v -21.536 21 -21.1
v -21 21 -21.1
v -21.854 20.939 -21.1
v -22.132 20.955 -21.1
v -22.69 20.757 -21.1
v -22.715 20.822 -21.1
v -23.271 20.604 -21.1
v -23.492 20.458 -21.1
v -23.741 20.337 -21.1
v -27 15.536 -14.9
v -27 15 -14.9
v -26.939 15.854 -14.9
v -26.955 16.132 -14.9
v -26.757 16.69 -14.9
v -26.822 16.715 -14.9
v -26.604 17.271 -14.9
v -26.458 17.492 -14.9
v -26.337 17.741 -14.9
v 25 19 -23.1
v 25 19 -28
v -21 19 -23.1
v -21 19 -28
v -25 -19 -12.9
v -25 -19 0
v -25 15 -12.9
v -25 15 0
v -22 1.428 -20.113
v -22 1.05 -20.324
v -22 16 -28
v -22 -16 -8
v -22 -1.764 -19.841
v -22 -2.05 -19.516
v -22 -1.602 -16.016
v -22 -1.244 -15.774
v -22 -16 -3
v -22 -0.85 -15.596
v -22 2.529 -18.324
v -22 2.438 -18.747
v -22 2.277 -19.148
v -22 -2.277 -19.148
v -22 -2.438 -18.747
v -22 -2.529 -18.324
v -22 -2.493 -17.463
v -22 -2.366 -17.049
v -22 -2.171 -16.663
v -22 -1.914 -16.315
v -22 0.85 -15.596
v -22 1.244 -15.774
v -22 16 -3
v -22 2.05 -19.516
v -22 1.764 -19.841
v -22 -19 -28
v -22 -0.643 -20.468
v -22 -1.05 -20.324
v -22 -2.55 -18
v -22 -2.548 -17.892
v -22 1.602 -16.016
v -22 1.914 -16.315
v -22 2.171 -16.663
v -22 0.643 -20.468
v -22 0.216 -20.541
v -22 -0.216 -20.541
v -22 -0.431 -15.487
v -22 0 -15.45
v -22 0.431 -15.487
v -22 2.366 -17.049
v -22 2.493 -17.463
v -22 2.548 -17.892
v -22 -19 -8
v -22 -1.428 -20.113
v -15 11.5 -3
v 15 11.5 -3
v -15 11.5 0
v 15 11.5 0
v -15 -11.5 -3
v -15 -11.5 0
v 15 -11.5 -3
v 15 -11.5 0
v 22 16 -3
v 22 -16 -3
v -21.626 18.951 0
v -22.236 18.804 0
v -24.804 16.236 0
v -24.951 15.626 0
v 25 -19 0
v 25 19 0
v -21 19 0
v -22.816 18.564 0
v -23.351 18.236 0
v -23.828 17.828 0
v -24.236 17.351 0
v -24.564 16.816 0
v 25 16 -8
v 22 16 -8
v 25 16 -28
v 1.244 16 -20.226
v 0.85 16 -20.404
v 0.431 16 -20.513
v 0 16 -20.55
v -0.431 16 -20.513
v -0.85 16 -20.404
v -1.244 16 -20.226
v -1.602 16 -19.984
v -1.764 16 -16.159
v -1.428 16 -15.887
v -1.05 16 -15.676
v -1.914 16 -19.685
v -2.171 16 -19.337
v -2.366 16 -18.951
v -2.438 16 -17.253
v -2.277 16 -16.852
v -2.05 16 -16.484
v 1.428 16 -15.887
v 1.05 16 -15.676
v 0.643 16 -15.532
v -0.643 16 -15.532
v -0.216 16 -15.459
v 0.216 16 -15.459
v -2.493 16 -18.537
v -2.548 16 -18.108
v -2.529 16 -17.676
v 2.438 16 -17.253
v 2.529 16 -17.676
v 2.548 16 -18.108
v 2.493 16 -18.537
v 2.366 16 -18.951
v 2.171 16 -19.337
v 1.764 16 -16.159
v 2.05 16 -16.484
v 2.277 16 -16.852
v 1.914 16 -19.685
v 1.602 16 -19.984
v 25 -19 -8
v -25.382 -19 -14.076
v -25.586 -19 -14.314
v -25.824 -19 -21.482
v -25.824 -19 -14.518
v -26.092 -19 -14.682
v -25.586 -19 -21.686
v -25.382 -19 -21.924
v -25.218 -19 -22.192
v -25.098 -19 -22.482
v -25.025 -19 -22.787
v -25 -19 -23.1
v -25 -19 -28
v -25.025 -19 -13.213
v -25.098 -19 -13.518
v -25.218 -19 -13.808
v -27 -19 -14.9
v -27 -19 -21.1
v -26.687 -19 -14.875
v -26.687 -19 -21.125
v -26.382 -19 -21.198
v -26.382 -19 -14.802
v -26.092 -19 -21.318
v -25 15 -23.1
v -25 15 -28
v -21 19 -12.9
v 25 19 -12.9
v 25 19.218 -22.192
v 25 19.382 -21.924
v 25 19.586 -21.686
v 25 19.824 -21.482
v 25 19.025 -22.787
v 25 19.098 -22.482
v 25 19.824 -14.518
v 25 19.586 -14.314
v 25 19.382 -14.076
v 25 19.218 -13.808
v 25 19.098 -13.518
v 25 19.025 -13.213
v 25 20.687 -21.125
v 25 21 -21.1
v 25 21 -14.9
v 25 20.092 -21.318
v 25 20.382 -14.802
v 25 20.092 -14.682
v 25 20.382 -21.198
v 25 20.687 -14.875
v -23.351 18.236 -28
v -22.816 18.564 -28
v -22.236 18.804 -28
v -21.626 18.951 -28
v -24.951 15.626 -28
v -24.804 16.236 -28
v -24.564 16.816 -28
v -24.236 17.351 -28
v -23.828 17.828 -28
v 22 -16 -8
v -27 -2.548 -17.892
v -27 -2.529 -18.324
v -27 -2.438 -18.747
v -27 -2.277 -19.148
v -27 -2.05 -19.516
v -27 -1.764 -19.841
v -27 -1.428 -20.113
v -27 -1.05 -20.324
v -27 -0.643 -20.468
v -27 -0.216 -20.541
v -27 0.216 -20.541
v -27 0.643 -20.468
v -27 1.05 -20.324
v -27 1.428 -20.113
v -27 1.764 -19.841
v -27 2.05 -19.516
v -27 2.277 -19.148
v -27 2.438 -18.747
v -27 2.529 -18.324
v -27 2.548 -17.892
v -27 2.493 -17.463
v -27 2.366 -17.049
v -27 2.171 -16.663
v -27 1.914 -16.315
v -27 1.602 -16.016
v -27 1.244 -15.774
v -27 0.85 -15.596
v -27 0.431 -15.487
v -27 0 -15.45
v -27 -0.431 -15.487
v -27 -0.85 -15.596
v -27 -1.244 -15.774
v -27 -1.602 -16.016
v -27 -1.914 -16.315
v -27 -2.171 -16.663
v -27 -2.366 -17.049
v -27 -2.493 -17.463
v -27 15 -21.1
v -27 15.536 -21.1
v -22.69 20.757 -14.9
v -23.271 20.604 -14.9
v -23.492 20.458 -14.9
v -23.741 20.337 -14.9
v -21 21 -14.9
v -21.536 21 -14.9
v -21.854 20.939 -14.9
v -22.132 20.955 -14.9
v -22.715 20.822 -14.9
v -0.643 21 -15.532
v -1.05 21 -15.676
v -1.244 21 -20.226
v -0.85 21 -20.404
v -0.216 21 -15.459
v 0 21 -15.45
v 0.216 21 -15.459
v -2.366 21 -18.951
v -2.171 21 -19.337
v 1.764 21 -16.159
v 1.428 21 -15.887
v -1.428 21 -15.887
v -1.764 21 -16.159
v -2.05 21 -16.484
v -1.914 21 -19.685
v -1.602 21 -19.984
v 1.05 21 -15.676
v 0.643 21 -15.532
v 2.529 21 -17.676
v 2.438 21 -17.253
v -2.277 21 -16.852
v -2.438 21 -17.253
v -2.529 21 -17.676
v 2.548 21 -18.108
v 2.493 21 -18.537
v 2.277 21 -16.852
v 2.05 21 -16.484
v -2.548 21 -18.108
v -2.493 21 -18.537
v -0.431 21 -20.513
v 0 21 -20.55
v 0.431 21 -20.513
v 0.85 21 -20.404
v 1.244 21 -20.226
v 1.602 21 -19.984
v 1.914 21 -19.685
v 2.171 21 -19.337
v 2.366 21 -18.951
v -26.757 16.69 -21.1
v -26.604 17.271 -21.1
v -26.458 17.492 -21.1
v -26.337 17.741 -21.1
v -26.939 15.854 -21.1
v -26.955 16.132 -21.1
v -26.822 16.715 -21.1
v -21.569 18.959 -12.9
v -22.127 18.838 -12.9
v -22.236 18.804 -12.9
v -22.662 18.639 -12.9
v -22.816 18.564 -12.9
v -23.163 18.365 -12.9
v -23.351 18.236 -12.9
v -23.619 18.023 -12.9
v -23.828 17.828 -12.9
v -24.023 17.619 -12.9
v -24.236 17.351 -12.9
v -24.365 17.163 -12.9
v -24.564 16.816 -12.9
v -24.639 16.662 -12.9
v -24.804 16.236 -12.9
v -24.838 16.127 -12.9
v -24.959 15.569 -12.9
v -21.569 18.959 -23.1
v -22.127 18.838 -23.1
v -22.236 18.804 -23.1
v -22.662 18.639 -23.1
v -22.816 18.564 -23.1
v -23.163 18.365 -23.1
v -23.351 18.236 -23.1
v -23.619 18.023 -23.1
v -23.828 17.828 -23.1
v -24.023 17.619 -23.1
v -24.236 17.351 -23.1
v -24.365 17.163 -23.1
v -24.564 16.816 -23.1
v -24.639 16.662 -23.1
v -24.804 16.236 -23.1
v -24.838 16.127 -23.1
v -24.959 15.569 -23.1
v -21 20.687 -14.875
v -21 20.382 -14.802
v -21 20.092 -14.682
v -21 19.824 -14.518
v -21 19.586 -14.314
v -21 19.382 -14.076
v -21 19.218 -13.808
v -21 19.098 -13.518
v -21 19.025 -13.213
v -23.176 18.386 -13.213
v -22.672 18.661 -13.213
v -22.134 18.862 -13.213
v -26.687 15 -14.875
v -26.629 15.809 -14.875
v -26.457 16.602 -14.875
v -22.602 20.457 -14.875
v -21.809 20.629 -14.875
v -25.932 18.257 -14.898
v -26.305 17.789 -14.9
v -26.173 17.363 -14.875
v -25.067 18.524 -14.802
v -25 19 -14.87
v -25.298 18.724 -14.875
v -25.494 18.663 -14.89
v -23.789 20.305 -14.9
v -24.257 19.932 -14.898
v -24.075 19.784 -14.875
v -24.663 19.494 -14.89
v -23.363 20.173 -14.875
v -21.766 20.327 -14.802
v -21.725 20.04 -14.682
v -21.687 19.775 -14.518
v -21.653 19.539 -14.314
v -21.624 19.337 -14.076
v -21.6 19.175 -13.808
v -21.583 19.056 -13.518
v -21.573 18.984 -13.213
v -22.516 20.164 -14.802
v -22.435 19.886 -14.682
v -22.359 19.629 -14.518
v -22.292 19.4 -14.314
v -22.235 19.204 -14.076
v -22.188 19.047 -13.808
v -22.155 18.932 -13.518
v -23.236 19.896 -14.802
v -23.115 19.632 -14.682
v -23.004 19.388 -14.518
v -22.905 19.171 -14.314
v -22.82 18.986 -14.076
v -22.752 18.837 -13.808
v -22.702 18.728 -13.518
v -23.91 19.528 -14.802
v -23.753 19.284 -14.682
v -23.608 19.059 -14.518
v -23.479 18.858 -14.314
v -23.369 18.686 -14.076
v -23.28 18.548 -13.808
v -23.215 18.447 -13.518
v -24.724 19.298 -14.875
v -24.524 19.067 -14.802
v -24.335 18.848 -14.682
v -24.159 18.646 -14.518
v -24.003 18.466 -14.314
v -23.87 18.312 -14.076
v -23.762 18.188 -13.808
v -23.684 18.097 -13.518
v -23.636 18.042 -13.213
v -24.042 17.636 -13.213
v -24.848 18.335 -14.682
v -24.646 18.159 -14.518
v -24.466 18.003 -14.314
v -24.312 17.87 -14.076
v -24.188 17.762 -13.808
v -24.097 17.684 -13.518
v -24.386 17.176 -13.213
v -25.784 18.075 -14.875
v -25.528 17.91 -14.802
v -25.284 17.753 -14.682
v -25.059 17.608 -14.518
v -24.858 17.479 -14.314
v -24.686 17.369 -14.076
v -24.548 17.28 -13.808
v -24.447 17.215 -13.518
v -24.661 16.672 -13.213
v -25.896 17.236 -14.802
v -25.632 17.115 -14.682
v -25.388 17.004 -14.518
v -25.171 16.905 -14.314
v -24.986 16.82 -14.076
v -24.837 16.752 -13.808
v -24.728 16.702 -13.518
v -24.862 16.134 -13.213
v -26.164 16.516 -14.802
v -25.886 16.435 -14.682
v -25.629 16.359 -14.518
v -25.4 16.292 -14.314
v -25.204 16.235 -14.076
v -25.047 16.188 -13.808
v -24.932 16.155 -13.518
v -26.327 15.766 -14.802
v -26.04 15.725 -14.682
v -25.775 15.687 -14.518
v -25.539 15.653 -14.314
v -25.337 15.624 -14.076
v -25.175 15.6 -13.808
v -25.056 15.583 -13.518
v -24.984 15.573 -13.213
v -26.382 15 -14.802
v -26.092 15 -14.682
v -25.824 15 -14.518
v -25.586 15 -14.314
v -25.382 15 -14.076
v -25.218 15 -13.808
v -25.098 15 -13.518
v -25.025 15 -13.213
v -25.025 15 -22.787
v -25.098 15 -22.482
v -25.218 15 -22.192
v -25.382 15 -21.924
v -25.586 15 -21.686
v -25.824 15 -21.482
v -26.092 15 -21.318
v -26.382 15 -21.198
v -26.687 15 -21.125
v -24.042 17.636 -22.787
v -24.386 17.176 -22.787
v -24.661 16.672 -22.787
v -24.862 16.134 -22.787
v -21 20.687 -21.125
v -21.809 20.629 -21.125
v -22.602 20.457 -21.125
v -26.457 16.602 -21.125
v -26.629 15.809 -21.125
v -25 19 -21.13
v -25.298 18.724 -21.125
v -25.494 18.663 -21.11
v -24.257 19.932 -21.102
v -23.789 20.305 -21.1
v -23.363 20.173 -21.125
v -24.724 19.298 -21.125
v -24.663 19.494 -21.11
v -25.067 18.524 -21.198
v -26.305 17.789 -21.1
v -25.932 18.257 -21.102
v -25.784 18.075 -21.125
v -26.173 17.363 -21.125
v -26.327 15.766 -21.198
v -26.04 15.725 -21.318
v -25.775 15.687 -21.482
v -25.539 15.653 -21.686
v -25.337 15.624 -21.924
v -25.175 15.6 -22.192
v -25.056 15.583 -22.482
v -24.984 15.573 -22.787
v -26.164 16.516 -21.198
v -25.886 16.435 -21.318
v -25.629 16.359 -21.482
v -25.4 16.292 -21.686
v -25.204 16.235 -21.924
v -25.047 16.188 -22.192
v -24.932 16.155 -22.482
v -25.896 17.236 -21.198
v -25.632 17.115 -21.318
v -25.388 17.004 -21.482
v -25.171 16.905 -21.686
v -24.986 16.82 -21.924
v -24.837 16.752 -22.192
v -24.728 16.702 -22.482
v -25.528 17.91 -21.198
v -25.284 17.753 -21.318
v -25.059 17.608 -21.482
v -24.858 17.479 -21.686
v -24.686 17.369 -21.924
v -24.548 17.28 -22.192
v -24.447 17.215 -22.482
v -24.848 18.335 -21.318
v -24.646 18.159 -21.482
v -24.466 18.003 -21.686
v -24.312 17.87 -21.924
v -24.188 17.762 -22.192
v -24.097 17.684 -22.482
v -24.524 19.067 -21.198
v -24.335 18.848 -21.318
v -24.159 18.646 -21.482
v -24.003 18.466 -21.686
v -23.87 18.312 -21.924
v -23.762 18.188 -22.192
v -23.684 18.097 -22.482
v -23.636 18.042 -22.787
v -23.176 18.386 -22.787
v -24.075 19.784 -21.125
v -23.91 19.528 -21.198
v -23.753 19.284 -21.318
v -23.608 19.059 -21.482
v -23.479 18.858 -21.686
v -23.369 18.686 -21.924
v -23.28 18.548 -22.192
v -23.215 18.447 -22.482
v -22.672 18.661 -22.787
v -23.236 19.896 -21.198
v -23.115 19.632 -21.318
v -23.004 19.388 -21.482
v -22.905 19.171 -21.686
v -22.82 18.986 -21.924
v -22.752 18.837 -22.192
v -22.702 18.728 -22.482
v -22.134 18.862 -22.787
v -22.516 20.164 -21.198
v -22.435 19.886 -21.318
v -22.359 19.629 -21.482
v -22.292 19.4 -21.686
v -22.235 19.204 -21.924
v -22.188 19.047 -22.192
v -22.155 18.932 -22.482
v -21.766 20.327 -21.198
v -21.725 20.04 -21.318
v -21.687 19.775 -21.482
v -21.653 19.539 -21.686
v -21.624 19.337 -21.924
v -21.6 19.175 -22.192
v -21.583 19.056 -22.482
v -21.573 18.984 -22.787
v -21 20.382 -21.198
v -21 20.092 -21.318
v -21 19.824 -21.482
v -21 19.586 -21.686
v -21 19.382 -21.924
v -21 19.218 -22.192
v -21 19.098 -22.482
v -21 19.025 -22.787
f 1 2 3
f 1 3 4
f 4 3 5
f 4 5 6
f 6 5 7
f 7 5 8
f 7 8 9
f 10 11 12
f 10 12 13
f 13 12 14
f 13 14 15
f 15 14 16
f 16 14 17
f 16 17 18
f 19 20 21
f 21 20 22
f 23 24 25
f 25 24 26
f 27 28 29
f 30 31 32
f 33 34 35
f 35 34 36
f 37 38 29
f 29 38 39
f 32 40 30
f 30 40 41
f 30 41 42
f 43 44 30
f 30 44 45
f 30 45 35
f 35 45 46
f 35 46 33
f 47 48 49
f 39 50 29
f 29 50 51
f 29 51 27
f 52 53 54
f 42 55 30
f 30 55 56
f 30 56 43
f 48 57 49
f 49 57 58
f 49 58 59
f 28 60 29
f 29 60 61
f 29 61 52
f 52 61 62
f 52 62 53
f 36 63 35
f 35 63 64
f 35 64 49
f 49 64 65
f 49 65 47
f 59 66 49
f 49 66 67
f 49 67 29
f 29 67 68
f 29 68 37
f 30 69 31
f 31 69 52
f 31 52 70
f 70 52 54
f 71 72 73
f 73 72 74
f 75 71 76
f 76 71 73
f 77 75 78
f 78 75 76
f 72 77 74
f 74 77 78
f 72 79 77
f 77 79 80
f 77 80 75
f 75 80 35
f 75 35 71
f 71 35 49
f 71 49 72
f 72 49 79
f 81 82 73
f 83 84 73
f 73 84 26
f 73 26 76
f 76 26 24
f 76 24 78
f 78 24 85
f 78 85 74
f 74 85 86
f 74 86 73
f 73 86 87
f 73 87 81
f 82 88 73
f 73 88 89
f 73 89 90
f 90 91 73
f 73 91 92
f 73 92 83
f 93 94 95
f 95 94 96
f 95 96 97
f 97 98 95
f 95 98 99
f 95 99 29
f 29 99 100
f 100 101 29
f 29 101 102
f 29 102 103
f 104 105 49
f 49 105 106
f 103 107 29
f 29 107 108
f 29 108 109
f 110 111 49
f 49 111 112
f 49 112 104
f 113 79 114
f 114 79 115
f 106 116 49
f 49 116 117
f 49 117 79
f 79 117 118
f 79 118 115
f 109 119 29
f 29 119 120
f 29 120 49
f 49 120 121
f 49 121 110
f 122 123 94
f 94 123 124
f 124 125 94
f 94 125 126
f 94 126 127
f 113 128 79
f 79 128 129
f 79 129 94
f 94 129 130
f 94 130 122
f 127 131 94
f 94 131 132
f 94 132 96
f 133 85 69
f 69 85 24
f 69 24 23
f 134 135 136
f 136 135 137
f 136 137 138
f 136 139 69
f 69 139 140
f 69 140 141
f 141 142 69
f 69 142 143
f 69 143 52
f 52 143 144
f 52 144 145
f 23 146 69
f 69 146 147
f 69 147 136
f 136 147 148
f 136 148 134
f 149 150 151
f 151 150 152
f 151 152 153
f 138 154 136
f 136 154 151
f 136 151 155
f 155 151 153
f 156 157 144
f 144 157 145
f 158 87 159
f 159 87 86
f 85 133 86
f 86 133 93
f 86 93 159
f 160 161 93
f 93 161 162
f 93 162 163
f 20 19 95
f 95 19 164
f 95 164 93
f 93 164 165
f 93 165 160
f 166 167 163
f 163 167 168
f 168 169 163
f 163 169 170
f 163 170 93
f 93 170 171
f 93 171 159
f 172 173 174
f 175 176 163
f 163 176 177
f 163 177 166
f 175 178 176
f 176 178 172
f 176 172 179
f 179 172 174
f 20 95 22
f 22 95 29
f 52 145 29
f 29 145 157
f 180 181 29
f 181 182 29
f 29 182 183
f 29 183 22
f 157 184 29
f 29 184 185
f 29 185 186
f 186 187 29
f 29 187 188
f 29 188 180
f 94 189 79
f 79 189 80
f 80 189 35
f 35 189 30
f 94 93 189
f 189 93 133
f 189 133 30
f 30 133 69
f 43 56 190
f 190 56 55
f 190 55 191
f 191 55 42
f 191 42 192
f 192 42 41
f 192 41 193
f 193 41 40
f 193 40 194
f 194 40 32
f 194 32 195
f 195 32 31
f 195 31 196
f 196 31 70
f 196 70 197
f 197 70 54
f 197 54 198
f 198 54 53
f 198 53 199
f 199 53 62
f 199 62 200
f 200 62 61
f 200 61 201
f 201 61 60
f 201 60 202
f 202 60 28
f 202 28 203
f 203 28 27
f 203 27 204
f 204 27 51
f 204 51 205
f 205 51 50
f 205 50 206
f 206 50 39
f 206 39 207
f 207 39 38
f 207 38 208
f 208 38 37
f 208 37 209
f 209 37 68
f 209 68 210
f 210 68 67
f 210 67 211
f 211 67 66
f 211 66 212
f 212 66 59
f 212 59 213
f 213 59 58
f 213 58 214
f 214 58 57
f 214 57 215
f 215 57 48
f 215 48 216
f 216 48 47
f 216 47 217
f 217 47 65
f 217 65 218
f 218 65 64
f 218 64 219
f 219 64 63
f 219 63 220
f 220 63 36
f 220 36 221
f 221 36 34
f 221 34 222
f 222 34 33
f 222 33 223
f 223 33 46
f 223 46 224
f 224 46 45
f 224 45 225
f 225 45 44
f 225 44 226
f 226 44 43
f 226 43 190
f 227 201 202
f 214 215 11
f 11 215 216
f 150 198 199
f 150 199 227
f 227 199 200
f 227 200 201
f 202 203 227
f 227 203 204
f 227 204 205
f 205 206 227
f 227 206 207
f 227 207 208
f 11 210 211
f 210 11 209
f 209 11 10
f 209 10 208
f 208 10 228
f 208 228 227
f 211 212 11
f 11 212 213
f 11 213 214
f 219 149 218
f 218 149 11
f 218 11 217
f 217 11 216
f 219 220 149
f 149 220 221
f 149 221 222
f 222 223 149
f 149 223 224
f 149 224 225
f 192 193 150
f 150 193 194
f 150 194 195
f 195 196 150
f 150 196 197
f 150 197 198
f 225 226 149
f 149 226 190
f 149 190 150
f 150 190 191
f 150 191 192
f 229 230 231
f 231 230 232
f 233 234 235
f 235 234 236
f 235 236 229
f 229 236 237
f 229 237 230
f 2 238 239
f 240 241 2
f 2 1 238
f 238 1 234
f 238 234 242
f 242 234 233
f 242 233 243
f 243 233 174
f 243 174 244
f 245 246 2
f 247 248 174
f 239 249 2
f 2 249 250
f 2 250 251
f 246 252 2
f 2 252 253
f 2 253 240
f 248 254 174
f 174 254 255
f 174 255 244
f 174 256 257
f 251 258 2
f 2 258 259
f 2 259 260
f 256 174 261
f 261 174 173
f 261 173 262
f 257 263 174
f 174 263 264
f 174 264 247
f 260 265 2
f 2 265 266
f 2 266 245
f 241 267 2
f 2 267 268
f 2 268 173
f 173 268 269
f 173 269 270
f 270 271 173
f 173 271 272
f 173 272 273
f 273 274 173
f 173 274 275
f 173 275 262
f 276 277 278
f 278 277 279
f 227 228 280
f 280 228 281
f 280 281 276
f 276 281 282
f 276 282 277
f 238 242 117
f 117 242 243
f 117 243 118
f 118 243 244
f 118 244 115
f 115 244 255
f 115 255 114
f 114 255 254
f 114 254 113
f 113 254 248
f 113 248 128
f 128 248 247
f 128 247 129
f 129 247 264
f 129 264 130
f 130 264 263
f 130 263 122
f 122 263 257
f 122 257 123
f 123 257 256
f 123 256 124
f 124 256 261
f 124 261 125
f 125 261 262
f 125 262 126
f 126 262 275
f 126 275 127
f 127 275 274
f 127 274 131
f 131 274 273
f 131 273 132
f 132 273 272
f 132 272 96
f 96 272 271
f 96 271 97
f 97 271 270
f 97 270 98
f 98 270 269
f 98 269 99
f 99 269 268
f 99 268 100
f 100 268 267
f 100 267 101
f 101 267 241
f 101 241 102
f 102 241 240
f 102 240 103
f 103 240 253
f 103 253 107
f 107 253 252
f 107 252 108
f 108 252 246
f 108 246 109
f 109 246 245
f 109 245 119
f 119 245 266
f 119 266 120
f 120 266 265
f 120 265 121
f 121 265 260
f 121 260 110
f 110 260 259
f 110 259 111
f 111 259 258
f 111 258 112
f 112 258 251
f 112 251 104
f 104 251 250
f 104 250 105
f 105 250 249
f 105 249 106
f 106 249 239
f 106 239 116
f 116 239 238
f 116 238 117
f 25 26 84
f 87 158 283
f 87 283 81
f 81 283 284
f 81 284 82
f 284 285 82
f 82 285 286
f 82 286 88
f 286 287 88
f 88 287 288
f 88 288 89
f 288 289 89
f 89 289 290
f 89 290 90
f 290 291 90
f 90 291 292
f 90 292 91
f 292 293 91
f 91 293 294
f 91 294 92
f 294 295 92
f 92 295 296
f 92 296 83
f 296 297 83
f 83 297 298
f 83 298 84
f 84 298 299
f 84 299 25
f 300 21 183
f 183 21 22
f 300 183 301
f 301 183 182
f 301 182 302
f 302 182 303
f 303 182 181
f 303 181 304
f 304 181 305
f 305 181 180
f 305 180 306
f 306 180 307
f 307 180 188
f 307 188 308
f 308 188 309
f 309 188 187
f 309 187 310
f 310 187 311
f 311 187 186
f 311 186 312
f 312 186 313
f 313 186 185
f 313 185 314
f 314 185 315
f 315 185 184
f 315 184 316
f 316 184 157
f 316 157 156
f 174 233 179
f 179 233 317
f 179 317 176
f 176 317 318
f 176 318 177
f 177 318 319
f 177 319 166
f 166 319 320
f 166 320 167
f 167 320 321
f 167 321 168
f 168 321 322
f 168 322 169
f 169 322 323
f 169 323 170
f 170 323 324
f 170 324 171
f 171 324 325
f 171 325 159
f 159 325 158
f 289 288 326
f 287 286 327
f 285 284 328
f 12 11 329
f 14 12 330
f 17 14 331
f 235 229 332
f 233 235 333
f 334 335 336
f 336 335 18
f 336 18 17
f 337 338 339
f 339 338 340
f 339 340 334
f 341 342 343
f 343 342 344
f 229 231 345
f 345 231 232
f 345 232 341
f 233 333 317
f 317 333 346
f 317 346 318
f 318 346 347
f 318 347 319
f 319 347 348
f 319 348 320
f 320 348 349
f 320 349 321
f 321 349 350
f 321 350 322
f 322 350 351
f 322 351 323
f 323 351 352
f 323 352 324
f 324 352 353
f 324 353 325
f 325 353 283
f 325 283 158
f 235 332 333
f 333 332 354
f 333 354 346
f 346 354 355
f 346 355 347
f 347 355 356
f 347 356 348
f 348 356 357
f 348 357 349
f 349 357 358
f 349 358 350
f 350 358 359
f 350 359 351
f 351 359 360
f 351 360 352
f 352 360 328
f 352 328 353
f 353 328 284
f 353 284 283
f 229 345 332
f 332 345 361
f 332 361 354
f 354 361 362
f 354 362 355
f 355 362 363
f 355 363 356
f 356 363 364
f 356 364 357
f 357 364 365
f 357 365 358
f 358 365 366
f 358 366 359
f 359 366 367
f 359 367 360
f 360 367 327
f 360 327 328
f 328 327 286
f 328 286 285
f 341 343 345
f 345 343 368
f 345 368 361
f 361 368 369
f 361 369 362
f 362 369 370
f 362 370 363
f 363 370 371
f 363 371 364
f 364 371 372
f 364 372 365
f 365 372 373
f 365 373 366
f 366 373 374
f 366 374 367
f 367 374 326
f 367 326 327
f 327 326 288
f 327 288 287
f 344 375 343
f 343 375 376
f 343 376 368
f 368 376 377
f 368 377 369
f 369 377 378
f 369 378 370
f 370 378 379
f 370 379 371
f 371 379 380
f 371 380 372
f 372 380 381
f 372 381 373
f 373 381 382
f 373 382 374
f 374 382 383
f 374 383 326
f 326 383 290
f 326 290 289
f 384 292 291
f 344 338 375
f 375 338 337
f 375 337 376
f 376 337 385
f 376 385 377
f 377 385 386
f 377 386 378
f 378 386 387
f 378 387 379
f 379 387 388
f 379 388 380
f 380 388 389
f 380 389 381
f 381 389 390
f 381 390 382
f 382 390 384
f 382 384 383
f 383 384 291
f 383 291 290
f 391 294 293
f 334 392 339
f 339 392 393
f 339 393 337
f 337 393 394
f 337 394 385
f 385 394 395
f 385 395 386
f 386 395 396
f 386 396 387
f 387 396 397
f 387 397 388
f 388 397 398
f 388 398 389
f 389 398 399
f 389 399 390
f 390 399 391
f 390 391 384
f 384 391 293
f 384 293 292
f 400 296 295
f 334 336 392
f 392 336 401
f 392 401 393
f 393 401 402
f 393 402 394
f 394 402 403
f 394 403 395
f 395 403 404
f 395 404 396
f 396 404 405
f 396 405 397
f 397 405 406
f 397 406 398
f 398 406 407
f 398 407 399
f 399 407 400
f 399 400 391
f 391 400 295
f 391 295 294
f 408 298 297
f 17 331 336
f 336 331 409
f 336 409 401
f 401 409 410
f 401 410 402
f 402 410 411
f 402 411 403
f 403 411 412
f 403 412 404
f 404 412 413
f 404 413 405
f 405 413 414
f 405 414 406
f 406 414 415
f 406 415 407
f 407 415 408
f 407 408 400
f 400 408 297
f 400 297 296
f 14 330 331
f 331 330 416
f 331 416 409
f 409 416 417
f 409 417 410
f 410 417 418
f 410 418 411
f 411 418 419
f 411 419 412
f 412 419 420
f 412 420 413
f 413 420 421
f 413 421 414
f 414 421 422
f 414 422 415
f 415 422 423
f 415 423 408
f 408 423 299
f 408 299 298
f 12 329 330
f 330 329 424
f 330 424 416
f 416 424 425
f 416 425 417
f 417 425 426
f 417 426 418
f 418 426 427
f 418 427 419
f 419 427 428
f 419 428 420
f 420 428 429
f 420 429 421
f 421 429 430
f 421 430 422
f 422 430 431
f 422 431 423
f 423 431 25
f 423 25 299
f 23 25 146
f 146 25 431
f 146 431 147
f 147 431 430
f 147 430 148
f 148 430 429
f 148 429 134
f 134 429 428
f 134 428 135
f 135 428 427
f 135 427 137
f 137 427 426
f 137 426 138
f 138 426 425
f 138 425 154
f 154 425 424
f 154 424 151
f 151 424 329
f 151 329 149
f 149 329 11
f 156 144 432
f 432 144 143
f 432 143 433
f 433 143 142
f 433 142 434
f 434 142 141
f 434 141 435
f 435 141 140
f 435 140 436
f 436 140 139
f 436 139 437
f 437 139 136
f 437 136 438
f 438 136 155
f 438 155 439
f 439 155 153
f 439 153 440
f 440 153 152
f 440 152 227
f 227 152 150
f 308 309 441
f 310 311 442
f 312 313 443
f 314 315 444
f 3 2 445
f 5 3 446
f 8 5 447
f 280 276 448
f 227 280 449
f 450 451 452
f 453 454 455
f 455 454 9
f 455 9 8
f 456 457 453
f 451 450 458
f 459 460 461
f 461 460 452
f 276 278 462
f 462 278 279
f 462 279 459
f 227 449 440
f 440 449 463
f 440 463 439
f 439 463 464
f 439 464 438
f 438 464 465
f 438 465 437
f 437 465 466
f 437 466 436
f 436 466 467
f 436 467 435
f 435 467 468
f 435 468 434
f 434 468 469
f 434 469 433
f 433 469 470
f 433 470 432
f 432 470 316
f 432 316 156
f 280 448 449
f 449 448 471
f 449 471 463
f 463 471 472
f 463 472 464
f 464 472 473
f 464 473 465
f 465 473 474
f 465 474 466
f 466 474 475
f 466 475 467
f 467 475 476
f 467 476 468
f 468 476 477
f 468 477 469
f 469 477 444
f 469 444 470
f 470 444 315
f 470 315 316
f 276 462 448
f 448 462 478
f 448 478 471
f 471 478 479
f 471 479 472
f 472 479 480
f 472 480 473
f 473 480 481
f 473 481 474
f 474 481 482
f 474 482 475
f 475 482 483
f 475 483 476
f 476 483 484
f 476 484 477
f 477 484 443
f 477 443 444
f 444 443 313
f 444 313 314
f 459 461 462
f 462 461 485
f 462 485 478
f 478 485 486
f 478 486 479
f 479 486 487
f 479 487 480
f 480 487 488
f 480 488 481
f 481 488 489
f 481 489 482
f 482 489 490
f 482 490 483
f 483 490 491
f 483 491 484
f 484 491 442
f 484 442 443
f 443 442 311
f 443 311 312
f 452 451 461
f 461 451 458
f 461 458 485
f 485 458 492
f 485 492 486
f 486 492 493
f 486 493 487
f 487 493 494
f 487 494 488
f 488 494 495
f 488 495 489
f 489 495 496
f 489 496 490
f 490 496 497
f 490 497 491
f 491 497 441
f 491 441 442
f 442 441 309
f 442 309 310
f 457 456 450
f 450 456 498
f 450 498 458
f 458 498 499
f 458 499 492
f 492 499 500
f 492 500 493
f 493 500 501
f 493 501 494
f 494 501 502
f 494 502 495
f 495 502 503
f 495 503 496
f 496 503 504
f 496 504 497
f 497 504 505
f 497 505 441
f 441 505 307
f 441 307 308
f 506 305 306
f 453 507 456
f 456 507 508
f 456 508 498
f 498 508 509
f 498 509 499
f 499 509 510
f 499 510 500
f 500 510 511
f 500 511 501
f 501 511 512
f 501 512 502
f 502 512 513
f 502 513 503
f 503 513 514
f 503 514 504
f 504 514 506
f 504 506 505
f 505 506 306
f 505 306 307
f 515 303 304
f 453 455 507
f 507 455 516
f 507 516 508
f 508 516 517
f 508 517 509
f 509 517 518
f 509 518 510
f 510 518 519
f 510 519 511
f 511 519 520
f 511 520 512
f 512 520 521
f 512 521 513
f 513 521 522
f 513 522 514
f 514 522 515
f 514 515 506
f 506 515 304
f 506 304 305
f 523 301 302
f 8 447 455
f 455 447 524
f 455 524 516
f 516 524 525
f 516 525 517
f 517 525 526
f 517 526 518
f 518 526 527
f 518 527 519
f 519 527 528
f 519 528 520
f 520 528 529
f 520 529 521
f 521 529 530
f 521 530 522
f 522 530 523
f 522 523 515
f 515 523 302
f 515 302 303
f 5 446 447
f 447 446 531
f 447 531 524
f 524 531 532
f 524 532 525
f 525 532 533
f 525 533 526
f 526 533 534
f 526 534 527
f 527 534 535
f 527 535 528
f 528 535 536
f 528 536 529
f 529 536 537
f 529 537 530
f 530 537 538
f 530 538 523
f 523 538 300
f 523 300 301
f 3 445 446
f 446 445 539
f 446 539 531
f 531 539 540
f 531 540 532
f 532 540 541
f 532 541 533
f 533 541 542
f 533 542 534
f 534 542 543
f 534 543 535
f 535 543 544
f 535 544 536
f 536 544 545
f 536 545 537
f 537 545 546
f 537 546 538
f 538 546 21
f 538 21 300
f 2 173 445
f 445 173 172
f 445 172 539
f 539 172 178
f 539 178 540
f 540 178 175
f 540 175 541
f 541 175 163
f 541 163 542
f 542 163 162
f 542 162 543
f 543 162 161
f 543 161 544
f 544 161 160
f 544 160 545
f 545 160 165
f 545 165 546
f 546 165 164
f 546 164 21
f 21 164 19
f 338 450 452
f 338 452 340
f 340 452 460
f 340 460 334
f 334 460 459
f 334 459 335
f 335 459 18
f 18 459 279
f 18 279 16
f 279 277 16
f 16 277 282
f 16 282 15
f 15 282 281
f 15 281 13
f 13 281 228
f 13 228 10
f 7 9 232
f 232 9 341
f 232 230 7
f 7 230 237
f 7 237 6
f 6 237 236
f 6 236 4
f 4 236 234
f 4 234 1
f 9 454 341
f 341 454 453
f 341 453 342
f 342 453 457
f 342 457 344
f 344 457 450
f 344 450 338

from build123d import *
from build123d.topology import SkipClean

# Parameters (mm, degrees)
SKETCH_1_W          = 44
SKETCH_1_H          = 32
SKETCH_1_W_2        = 30
SKETCH_1_H_2        = 23
EXTRUDE_1_DEPTH     = 3
SKETCH_1_3_W        = 3
SKETCH_1_3_H        = 3
EXTRUDE_2_DEPTH     = 28
EXTRUDE_3_DEPTH     = 8
SKETCH_2_R          = 2.55
CUT_EXTRUDE_2_DEPTH = 61.373835392
EXTRUDE_START       = 2
SKETCH_2_3_W        = 6.2
SKETCH_2_3_H        = 38
SKETCH_2_3_R        = 2.55
EXTRUDE_4_DEPTH     = 2
SKETCH_3_W          = 50
SKETCH_3_H          = 6.2
SKETCH_3_R          = 2.55
EXTRUDE_5_DEPTH     = 2
SKETCH_3_2_R        = 2.55
CUT_EXTRUDE_3_DEPTH = 55.378304497
FILLET_2_R          = 4
FILLET_3_R          = 2
FILLET_4_R          = 4


with BuildPart() as part:
    # 草图1 → 凸台-拉伸1 (new body)
    with BuildSketch(Plane.XY):
        Rectangle(SKETCH_1_W, SKETCH_1_H)
        Rectangle(SKETCH_1_W_2, SKETCH_1_H_2, mode=Mode.SUBTRACT)
    extrude(amount=-EXTRUDE_1_DEPTH)

    # 草图1<3> → 凸台-拉伸2 (add)
    with BuildSketch(Plane.XY):
        Polygon((-22, -16), (-22, 16), (22, 16), (22, 19), (-25, 19), (-25, -16), align=None)
        with Locations((-23.5, -17.5)):
            Rectangle(SKETCH_1_3_W, SKETCH_1_3_H)
        with Locations((23.5, 17.5)):
            Rectangle(SKETCH_1_3_W, SKETCH_1_3_H)
    extrude(amount=-EXTRUDE_2_DEPTH)

    # 草图1<4> → 凸台-拉伸3 (add)
    with BuildSketch(Plane.XY):
        Polygon((25, 16), (22, 16), (22, -16), (-22, -16), (-22, -19), (25, -19), align=None)
    extrude(amount=-EXTRUDE_3_DEPTH)

    # 草图2 → 切除-拉伸2 (cut, through all)
    with BuildSketch(Plane.ZY.offset(25)):
        with Locations((-18, 0)):
            Circle(SKETCH_2_R)
    extrude(amount=-CUT_EXTRUDE_2_DEPTH, mode=Mode.SUBTRACT)

    # 草图2<3> → 凸台-拉伸4 (add)
    with BuildSketch(Plane.ZY.offset(25).offset(EXTRUDE_START)):
        with Locations((-18, 0)):
            Rectangle(SKETCH_2_3_W, SKETCH_2_3_H)
        with Locations((-18, 0)):
            Circle(SKETCH_2_3_R, mode=Mode.SUBTRACT)
    extrude(amount=-EXTRUDE_4_DEPTH)

    # 草图3 → 凸台-拉伸5 (add)
    with BuildSketch(Plane(origin=(0, 19, 0), x_dir=(1, 0, 0), z_dir=(0, 1, 0))):
        with Locations((0, 18)):
            Rectangle(SKETCH_3_W, SKETCH_3_H)
        with Locations(Location((0, 18, 0), (0, 0, 270))):
            Circle(SKETCH_3_R, mode=Mode.SUBTRACT)
    extrude(amount=EXTRUDE_5_DEPTH)

    # 草图3<2> → 切除-拉伸3 (cut, through all)
    with SkipClean():  # the faces are left unmerged after this step: merging them gives an invalid solid
        with BuildSketch(Plane(origin=(0, 19, 0), x_dir=(1, 0, 0), z_dir=(0, 1, 0))):
            with Locations(Location((0, 18, 0), (0, 0, 90))):
                Circle(SKETCH_3_2_R)
        extrude(amount=-CUT_EXTRUDE_3_DEPTH, mode=Mode.SUBTRACT)
    add(part.part.scale(1), mode=Mode.REPLACE)  # the faces are merged on a copy

    # 圆角2
    # the kernel refuses this fillet: 4 mm, written as the material it takes off along each edge
    with BuildSketch(Plane(origin=(-25, 19, -11.1), x_dir=(1, 0, 0), z_dir=(0, 0, -1))) as fillet_2_piece_1_section:
        with BuildLine():
            CenterArc((FILLET_2_R, FILLET_2_R), FILLET_2_R, 180, 90)
            Line((0, FILLET_2_R), (0, 0))
            Line((0, 0), (FILLET_2_R, 0))
        make_face()
    fillet_2_piece_1 = extrude(amount=26.9, mode=Mode.PRIVATE)
    fillet_2_piece_1 = split(fillet_2_piece_1, bisect_by=Plane(origin=(-24.094419543, 18.094419543, -14.9), z_dir=(0, 0, 1)), keep=Keep.TOP, mode=Mode.PRIVATE)
    add(fillet_2_piece_1, mode=Mode.SUBTRACT)
    with BuildSketch(Plane(origin=(-25, 19, -21.1), x_dir=(1, 0, 0), z_dir=(0, 0, -1))) as fillet_2_piece_2:
        with BuildLine():
            CenterArc((FILLET_2_R, FILLET_2_R), FILLET_2_R, 180, 90)
            Line((0, FILLET_2_R), (0, 0))
            Line((0, 0), (FILLET_2_R, 0))
        make_face()
    extrude(amount=16.9, mode=Mode.SUBTRACT)
    with BuildSketch(Plane(origin=(-25, 19, 10), x_dir=(1, 0, 0), z_dir=(0, 0, -1))) as fillet_2_piece_3:
        with BuildLine():
            CenterArc((FILLET_2_R, FILLET_2_R), FILLET_2_R, 180, 90)
            Line((0, FILLET_2_R), (0, 0))
            Line((0, 0), (FILLET_2_R, 0))
        make_face()
    extrude(amount=24.9, mode=Mode.SUBTRACT)
    with BuildSketch(Plane(origin=(-25, 19, 10), x_dir=(1, 0, 0), z_dir=(0, 0, -1))) as fillet_2_piece_4_section:
        with BuildLine():
            CenterArc((FILLET_2_R, FILLET_2_R), FILLET_2_R, 180, 90)
            Line((0, FILLET_2_R), (0, 0))
            Line((0, 0), (FILLET_2_R, 0))
        make_face()
    fillet_2_piece_4 = extrude(amount=34.9, mode=Mode.PRIVATE)
    fillet_2_piece_4 = split(fillet_2_piece_4, bisect_by=Plane(origin=(-24.094419543, 18.094419543, -21.1), z_dir=(0, 0, -1)), keep=Keep.TOP, mode=Mode.PRIVATE)
    add(fillet_2_piece_4, mode=Mode.SUBTRACT)

    # 圆角3
    # the kernel refuses this fillet: 2 mm, written as the material it adds along each edge
    with BuildSketch(Plane(origin=(-25, 15, -14.9), x_dir=(0, 0, 1), z_dir=(0, -1, 0)), Plane(origin=(-25, -19, -21.1), x_dir=(0, 0, -1), z_dir=(0, 1, 0))) as fillet_3_piece_1:
        with BuildLine():
            CenterArc((FILLET_3_R, FILLET_3_R), FILLET_3_R, 180, 90)
            Line((0, FILLET_3_R), (0, 0))
            Line((0, 0), (FILLET_3_R, 0))
        make_face()
    extrude(amount=34)
    with BuildSketch(Plane(origin=(-21, 19, -14.9), x_dir=(0, 1, 0), z_dir=(1, 0, 0))) as fillet_3_piece_2:
        with BuildLine():
            CenterArc((FILLET_3_R, FILLET_3_R), FILLET_3_R, 180, 90)
            Line((0, FILLET_3_R), (0, 0))
            Line((0, 0), (FILLET_3_R, 0))
        make_face()
    extrude(amount=46)
    with BuildSketch(Plane(origin=(-21, 15, -14.9), x_dir=(0, 1, 0), z_dir=(1, 0, 0))) as fillet_3_piece_3_section:
        with BuildLine():
            CenterArc((4 + FILLET_3_R, FILLET_3_R), FILLET_3_R, 180, 90)
            Line((4, FILLET_3_R), (4, 0))
            Line((4, 0), (4 + FILLET_3_R, 0))
        make_face()
    fillet_3_piece_3 = revolve(axis=Axis((-21, 15, -14.9), (0, 0, 1)), revolution_arc=90, mode=Mode.PRIVATE)
    fillet_3_piece_3 = split(fillet_3_piece_3, bisect_by=Plane(origin=(-25, 19.477397307, -14.620539083), z_dir=(1, 0, 0)), keep=Keep.TOP, mode=Mode.PRIVATE)
    fillet_3_piece_3 = split(fillet_3_piece_3, bisect_by=Plane(origin=(-22.217423946, 19, -14.620539083), z_dir=(0, 1, 0)), keep=Keep.TOP, mode=Mode.PRIVATE)
    add(fillet_3_piece_3)
    with BuildSketch(Plane(origin=(-21, 15, -14.9), x_dir=(0, 1, 0), z_dir=(1, 0, 0))) as fillet_3_piece_4_section:
        with BuildLine():
            CenterArc((4 + FILLET_3_R, FILLET_3_R), FILLET_3_R, 180, 90)
            Line((4, FILLET_3_R), (4, 0))
            Line((4, 0), (4 + FILLET_3_R, 0))
        make_face()
    fillet_3_piece_4 = revolve(axis=Axis((-21, 15, -14.9), (0, 0, 1)), revolution_arc=90, mode=Mode.PRIVATE)
    fillet_3_piece_4 = split(fillet_3_piece_4, bisect_by=Plane(origin=(-25, 17.874086427, -14.313906434), z_dir=(1, 0, 0)), keep=Keep.TOP, mode=Mode.PRIVATE)
    fillet_3_piece_4 = split(fillet_3_piece_4, bisect_by=Plane(origin=(-23.874086368, 19, -14.313906434), z_dir=(0, -1, 0)), keep=Keep.TOP, mode=Mode.PRIVATE)
    add(fillet_3_piece_4)
    with BuildSketch(Plane(origin=(-21, 15, -14.9), x_dir=(0, 1, 0), z_dir=(1, 0, 0))) as fillet_3_piece_5_section:
        with BuildLine():
            CenterArc((4 + FILLET_3_R, FILLET_3_R), FILLET_3_R, 180, 90)
            Line((4, FILLET_3_R), (4, 0))
            Line((4, 0), (4 + FILLET_3_R, 0))
        make_face()
    fillet_3_piece_5 = revolve(axis=Axis((-21, 15, -14.9), (0, 0, 1)), revolution_arc=90, mode=Mode.PRIVATE)
    fillet_3_piece_5 = split(fillet_3_piece_5, bisect_by=Plane(origin=(-25, 16.217423741, -14.620538996), z_dir=(-1, 0, 0)), keep=Keep.TOP, mode=Mode.PRIVATE)
    fillet_3_piece_5 = split(fillet_3_piece_5, bisect_by=Plane(origin=(-25.477396893, 19, -14.620538996), z_dir=(0, -1, 0)), keep=Keep.TOP, mode=Mode.PRIVATE)
    add(fillet_3_piece_5)
    with BuildSketch(Plane(origin=(25, 19, -21.1), x_dir=(0, 0, -1), z_dir=(-1, 0, 0))) as fillet_3_piece_6:
        with BuildLine():
            CenterArc((FILLET_3_R, -FILLET_3_R), FILLET_3_R, 90, 90)
            Line((0, -FILLET_3_R), (0, 0))
            Line((0, 0), (FILLET_3_R, 0))
        make_face()
    extrude(amount=46)
    with BuildSketch(Plane(origin=(-21, 15, -21.1), x_dir=(-1, 0, 0), z_dir=(0, -1, 0))) as fillet_3_piece_7_section:
        with BuildLine():
            CenterArc((4 + FILLET_3_R, FILLET_3_R), FILLET_3_R, 180, 90)
            Line((4 + FILLET_3_R, 0), (4, 0))
            Line((4, 0), (4, FILLET_3_R))
        make_face()
    fillet_3_piece_7 = revolve(axis=Axis((-21, 15, -21.1), (0, 0, -1)), revolution_arc=90, mode=Mode.PRIVATE)
    fillet_3_piece_7 = split(fillet_3_piece_7, bisect_by=Plane(origin=(-25, 17.874086364, -21.686093558), z_dir=(1, 0, 0)), keep=Keep.TOP, mode=Mode.PRIVATE)
    fillet_3_piece_7 = split(fillet_3_piece_7, bisect_by=Plane(origin=(-23.874086351, 19, -21.686093558), z_dir=(0, -1, 0)), keep=Keep.TOP, mode=Mode.PRIVATE)
    add(fillet_3_piece_7)
    with BuildSketch(Plane(origin=(-21, 15, -21.1), x_dir=(-1, 0, 0), z_dir=(0, -1, 0))) as fillet_3_piece_8_section:
        with BuildLine():
            CenterArc((4 + FILLET_3_R, FILLET_3_R), FILLET_3_R, 180, 90)
            Line((4 + FILLET_3_R, 0), (4, 0))
            Line((4, 0), (4, FILLET_3_R))
        make_face()
    fillet_3_piece_8 = revolve(axis=Axis((-21, 15, -21.1), (0, 0, -1)), revolution_arc=90, mode=Mode.PRIVATE)
    fillet_3_piece_8 = split(fillet_3_piece_8, bisect_by=Plane(origin=(-25, 16.217424103, -21.379460891), z_dir=(-1, 0, 0)), keep=Keep.TOP, mode=Mode.PRIVATE)
    fillet_3_piece_8 = split(fillet_3_piece_8, bisect_by=Plane(origin=(-25.477397304, 19, -21.379460891), z_dir=(0, -1, 0)), keep=Keep.TOP, mode=Mode.PRIVATE)
    add(fillet_3_piece_8)
    with BuildSketch(Plane(origin=(-21, 15, -21.1), x_dir=(-1, 0, 0), z_dir=(0, -1, 0))) as fillet_3_piece_9_section:
        with BuildLine():
            CenterArc((4 + FILLET_3_R, FILLET_3_R), FILLET_3_R, 180, 90)
            Line((4 + FILLET_3_R, 0), (4, 0))
            Line((4, 0), (4, FILLET_3_R))
        make_face()
    fillet_3_piece_9 = revolve(axis=Axis((-21, 15, -21.1), (0, 0, -1)), revolution_arc=90, mode=Mode.PRIVATE)
    fillet_3_piece_9 = split(fillet_3_piece_9, bisect_by=Plane(origin=(-25, 19.477396901, -21.379461023), z_dir=(1, 0, 0)), keep=Keep.TOP, mode=Mode.PRIVATE)
    fillet_3_piece_9 = split(fillet_3_piece_9, bisect_by=Plane(origin=(-22.217423514, 19, -21.379461023), z_dir=(0, 1, 0)), keep=Keep.TOP, mode=Mode.PRIVATE)
    add(fillet_3_piece_9)

    # 圆角4
    # the kernel refuses this fillet: 4 mm, written as the material it takes off along each edge
    with BuildSketch(Plane(origin=(-25, 21, -29.760254038), x_dir=(1, 0, 0), z_dir=(0, 0, 1))) as fillet_4_piece_1:
        with BuildLine():
            CenterArc((3.464101615, -4), FILLET_4_R, 90, 60)
            Line((0, -2), (-0.069282032, -1.96))
            ThreePointArc((-0.069282032, -1.96), (-0.08, -1), (-0.08, 0))
            Line((-0.08, 0), (0, 0.08))
            Line((0, 0.08), (3.464101615, 0.08))
            Line((3.464101615, 0.08), (3.464101615, 0))
        make_face()
    extrude(amount=23.520508076, mode=Mode.SUBTRACT)
    with BuildSketch(Plane(origin=(-27, 19, -29.760254038), x_dir=(0, -1, 0), z_dir=(0, 0, 1))) as fillet_4_piece_2:
        with BuildLine():
            CenterArc((3.464101615, 4), FILLET_4_R, 210, 60)
            Line((0, 2), (-0.069282032, 1.96))
            ThreePointArc((-0.069282032, 1.96), (-0.08, 1), (-0.08, 0))
            Line((-0.08, 0), (0, -0.08))
            Line((0, -0.08), (3.464101615, -0.08))
            Line((3.464101615, -0.08), (3.464101615, 0))
        make_face()
    extrude(amount=23.520508076, mode=Mode.SUBTRACT)


solid = part.part
